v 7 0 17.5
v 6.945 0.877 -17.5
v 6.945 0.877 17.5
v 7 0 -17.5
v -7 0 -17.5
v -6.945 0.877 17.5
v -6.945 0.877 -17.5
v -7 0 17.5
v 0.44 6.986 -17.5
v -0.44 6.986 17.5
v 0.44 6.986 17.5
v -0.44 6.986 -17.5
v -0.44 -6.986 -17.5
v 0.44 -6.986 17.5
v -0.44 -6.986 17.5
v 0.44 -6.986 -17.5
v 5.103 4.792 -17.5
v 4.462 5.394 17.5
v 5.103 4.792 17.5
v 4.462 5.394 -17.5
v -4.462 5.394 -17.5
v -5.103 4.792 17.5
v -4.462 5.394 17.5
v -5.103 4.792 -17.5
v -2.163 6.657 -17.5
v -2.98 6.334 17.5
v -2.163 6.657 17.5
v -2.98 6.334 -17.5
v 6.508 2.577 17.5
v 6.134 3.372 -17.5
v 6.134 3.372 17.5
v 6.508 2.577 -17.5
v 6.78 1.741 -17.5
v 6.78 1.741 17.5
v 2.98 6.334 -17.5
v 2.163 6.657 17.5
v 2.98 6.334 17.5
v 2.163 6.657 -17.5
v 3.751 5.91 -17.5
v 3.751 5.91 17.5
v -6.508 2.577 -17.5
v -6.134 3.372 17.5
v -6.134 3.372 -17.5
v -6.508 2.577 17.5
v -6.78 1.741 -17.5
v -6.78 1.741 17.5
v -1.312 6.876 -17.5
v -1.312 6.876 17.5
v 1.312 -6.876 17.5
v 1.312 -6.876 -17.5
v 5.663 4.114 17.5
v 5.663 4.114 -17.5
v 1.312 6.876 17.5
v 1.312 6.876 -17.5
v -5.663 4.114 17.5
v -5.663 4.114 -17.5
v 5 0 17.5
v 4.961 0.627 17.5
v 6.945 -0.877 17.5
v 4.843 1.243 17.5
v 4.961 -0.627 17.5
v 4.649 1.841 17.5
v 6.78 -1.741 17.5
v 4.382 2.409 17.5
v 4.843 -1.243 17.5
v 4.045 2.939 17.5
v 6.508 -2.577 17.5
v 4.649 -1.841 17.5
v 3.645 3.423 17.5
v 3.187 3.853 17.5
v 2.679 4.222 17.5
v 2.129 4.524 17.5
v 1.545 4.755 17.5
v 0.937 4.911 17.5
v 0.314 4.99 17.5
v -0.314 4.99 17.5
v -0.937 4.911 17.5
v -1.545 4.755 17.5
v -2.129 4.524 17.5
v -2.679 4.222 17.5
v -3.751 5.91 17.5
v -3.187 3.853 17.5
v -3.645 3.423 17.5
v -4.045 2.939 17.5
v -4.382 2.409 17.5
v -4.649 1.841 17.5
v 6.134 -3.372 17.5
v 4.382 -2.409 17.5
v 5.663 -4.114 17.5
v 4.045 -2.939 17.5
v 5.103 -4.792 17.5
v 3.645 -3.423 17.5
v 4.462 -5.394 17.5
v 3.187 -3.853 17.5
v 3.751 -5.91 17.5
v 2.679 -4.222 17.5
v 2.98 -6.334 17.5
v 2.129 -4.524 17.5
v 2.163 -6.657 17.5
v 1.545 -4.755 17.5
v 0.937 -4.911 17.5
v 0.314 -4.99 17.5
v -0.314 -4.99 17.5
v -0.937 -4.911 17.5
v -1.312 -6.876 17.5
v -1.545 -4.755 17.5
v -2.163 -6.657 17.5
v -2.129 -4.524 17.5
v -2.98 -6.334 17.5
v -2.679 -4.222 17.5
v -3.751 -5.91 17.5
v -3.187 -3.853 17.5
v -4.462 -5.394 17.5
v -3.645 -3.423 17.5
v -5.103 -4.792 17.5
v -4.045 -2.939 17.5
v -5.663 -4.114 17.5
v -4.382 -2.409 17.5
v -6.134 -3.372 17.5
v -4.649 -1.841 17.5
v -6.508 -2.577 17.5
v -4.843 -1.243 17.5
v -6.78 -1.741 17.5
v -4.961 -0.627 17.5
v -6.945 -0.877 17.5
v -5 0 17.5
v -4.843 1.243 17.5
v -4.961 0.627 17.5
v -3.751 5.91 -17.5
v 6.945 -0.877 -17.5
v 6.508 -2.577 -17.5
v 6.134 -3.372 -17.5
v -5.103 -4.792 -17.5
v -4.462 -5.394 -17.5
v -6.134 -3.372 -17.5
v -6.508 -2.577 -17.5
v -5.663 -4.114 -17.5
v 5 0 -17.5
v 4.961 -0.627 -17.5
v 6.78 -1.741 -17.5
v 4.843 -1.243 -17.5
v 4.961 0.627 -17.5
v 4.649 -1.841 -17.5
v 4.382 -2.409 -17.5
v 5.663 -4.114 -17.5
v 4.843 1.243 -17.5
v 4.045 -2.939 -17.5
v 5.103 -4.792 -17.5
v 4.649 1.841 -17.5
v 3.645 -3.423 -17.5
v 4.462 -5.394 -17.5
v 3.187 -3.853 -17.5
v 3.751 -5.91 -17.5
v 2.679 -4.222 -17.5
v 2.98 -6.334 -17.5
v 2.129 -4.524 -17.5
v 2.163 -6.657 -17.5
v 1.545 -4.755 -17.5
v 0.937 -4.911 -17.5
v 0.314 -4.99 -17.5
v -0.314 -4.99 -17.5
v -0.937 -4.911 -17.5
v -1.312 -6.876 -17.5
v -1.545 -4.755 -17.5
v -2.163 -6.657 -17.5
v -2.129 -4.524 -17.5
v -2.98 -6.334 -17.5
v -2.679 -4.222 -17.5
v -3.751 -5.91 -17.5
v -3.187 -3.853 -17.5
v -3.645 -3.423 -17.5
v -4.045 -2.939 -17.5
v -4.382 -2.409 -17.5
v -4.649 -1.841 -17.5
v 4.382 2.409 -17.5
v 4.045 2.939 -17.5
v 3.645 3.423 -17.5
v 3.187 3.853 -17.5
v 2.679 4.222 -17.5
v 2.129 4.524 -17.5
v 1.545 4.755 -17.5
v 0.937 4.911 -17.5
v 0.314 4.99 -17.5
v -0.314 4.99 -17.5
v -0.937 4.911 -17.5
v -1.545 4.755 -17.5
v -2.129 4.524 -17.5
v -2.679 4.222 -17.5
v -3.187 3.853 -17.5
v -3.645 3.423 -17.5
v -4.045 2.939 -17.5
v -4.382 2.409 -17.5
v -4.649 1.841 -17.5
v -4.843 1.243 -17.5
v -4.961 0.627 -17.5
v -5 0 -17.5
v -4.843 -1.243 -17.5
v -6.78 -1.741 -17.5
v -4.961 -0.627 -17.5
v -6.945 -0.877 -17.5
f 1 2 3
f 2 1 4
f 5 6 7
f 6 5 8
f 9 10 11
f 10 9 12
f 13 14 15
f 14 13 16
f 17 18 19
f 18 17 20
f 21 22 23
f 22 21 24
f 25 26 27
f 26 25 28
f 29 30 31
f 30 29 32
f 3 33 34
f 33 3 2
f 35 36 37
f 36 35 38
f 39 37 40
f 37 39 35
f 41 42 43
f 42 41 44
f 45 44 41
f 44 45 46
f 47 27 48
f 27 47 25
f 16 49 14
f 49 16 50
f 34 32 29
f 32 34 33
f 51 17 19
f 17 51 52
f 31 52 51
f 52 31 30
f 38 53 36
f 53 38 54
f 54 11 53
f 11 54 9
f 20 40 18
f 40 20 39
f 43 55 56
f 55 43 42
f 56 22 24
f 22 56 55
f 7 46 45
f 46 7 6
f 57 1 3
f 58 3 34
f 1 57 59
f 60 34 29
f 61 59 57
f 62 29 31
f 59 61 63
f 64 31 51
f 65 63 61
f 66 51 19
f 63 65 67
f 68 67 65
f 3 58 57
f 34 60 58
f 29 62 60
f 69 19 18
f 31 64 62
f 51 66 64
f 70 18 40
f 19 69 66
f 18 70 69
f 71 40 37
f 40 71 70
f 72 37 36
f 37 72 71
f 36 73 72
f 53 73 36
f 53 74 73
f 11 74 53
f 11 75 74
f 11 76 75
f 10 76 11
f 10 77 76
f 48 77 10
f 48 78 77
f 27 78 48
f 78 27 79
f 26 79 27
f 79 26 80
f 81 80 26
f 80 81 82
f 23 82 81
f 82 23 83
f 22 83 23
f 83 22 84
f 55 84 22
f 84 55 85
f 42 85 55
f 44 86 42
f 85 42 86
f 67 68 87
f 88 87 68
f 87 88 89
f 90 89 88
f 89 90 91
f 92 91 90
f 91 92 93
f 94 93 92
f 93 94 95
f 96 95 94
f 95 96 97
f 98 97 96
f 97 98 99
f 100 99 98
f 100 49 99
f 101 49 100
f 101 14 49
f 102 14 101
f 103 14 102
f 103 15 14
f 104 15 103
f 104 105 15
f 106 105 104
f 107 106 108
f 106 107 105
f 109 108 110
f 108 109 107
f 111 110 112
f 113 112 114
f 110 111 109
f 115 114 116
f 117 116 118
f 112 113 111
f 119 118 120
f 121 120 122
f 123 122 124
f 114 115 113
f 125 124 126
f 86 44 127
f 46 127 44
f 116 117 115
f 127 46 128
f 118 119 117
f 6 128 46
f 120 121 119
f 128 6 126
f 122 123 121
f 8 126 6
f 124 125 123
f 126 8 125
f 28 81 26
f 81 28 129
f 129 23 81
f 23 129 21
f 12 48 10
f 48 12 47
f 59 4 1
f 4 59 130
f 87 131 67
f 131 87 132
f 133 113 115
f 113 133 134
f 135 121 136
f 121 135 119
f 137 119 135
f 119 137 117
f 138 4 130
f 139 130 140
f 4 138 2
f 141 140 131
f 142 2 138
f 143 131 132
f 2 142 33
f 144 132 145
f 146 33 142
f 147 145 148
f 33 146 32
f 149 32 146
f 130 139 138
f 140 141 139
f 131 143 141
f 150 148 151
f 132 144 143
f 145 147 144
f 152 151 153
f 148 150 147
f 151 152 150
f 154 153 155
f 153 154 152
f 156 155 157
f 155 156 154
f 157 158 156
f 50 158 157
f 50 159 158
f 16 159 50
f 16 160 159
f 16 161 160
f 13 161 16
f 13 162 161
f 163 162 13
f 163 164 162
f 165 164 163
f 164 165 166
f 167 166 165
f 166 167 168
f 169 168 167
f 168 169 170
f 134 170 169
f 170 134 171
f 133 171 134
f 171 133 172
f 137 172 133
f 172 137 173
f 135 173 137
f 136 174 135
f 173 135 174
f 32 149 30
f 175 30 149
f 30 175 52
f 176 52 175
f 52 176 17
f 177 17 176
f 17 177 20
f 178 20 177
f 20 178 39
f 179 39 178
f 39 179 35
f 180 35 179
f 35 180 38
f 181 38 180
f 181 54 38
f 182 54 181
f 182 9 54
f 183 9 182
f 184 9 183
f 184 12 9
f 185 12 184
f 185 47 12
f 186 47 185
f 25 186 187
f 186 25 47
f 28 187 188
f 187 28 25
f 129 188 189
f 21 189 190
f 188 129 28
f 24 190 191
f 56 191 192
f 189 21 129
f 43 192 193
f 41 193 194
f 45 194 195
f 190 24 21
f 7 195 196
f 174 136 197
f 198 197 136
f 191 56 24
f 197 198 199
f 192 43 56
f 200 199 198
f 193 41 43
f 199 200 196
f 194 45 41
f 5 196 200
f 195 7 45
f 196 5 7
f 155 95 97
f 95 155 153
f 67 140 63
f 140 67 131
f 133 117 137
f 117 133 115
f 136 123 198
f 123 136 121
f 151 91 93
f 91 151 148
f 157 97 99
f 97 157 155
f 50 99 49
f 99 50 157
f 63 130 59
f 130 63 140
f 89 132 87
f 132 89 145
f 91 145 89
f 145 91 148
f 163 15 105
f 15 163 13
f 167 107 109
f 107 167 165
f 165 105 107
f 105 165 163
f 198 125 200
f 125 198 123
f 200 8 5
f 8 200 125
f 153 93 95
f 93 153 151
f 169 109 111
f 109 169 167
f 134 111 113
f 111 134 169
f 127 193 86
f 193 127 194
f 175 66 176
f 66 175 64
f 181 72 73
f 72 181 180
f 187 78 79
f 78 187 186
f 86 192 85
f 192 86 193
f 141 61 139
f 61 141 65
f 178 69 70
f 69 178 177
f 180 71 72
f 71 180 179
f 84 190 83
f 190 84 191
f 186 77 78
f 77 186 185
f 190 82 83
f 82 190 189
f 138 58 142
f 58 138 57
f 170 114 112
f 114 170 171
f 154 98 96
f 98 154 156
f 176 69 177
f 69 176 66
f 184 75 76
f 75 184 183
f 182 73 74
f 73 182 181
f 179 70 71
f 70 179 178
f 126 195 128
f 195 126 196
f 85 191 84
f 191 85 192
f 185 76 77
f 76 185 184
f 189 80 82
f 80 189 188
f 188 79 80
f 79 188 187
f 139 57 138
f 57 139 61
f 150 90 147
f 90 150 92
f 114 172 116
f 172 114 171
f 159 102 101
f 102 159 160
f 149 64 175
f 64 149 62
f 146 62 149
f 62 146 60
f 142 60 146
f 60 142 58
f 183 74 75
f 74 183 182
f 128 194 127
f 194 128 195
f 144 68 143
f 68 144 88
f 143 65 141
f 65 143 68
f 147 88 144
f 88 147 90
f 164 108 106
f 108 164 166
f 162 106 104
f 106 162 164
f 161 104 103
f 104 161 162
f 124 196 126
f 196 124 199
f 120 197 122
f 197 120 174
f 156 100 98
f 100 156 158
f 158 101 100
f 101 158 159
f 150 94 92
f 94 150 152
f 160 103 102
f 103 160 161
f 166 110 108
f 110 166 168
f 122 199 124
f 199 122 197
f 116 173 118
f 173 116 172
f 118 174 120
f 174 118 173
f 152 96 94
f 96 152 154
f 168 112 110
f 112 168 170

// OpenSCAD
$fn = 50;


difference() {
	union() {
		translate(v = [0, 0, -17.5000000000]) {
			cylinder(h = 35, r = 7.0000000000);
		}
	}
	union() {
		translate(v = [0, 0, -100.0000000000]) {
			cylinder(h = 200, r = 5);
		}
	}
}
